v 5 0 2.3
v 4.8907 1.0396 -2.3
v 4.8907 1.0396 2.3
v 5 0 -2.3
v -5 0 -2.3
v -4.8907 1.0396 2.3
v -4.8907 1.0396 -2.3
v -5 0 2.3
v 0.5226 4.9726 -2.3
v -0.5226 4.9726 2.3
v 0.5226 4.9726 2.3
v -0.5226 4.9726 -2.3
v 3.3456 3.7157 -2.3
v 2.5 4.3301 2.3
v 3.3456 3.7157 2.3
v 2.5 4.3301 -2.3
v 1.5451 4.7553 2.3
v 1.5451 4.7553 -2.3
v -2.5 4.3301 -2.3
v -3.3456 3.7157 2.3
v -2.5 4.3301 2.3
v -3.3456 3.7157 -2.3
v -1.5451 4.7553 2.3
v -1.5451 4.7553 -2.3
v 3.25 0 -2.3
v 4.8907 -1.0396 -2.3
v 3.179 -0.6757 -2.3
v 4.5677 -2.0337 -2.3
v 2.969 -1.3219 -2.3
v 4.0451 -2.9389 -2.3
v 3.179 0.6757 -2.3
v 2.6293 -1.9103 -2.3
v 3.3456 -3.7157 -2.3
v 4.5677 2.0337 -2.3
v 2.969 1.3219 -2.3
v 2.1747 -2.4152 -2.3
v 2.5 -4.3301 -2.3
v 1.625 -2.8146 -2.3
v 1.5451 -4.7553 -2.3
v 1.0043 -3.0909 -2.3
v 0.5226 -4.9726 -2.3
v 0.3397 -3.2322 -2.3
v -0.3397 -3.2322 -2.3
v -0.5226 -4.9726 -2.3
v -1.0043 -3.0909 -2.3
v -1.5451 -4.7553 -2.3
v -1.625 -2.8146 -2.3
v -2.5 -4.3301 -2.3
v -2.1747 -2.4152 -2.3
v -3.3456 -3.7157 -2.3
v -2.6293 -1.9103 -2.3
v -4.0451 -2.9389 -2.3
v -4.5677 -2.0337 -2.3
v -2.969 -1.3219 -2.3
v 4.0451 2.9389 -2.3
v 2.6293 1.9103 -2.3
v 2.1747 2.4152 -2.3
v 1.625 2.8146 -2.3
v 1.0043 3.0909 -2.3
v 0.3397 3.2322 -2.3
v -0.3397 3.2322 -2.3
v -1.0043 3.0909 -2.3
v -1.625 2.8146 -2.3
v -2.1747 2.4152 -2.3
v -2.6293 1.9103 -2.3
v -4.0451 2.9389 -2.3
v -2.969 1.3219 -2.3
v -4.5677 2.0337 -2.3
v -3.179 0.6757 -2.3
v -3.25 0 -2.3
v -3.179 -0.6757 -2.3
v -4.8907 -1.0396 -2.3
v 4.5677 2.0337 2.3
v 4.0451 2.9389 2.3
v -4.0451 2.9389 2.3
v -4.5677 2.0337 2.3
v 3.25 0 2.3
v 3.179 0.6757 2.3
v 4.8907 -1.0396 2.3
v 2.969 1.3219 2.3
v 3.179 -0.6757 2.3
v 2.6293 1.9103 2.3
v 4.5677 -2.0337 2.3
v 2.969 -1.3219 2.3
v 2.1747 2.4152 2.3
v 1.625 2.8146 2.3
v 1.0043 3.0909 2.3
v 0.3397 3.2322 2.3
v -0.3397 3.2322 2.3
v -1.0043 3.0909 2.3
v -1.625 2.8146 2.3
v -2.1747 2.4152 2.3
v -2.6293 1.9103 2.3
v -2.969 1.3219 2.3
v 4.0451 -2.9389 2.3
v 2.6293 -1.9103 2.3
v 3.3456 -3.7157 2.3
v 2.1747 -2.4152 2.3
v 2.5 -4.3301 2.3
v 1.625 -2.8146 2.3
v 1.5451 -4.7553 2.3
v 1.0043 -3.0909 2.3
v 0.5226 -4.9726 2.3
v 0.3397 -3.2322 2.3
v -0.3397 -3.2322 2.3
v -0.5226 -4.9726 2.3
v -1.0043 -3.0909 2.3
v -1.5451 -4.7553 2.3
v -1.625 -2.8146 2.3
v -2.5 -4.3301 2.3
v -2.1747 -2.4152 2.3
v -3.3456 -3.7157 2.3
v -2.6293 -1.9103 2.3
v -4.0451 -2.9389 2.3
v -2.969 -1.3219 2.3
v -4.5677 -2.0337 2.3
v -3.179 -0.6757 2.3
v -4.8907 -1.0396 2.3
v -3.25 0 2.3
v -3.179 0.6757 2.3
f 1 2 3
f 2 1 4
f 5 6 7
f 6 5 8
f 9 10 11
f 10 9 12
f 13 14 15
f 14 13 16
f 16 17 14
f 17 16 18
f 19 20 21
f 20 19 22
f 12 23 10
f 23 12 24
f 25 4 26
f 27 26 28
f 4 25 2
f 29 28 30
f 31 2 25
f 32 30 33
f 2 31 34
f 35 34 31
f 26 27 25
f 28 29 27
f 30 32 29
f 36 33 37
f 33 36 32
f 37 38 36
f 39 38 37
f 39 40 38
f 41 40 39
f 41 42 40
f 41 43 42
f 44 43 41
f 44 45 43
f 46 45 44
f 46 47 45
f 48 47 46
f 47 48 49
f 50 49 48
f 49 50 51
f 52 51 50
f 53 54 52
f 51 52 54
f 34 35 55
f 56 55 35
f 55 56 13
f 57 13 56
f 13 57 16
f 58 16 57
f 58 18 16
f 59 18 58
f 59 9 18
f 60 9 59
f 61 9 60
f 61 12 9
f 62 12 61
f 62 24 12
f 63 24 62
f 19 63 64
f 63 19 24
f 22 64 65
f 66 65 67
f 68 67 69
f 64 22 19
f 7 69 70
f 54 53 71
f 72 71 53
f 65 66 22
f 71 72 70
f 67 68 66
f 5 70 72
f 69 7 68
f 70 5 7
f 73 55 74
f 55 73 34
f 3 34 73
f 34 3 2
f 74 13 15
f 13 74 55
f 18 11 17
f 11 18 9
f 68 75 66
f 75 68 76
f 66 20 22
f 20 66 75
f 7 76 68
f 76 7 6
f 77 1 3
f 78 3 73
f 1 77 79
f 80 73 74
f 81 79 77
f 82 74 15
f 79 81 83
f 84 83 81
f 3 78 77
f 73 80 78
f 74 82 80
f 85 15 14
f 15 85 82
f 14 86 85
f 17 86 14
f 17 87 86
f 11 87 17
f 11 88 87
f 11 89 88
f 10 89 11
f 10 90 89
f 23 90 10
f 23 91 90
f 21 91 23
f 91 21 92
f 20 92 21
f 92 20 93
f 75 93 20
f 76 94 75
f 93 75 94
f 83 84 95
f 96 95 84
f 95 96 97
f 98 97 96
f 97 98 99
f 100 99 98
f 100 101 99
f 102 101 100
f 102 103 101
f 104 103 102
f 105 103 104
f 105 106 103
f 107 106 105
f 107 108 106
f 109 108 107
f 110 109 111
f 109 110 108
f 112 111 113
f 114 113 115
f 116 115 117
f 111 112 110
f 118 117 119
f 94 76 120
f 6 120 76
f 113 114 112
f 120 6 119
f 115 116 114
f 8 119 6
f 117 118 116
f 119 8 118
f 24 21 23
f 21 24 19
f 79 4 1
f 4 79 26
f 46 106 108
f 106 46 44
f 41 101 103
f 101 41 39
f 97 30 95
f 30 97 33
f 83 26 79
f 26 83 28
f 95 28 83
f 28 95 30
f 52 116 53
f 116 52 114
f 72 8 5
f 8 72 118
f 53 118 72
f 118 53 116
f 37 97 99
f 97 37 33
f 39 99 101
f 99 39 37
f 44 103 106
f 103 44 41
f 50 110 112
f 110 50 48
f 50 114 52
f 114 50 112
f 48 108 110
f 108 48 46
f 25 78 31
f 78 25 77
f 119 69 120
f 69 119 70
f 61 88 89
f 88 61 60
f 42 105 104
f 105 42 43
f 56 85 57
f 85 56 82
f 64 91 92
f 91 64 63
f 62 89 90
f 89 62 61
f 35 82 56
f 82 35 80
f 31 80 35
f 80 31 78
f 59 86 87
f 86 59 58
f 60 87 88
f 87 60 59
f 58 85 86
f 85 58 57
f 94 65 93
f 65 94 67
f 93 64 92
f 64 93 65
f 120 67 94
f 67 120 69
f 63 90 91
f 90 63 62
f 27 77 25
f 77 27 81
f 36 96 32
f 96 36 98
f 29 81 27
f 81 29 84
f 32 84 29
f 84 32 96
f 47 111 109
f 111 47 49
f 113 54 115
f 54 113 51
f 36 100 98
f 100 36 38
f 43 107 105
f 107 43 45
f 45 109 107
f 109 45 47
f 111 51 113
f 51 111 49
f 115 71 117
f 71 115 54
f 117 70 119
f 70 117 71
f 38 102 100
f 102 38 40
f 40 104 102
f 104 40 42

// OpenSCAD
difference(){
	height = 4.6;
    cylinder(r=5, h=height, center=true, $fs=0.1);
    cylinder(r=3.25, h=height, center=true, $fs=0.1);
}
